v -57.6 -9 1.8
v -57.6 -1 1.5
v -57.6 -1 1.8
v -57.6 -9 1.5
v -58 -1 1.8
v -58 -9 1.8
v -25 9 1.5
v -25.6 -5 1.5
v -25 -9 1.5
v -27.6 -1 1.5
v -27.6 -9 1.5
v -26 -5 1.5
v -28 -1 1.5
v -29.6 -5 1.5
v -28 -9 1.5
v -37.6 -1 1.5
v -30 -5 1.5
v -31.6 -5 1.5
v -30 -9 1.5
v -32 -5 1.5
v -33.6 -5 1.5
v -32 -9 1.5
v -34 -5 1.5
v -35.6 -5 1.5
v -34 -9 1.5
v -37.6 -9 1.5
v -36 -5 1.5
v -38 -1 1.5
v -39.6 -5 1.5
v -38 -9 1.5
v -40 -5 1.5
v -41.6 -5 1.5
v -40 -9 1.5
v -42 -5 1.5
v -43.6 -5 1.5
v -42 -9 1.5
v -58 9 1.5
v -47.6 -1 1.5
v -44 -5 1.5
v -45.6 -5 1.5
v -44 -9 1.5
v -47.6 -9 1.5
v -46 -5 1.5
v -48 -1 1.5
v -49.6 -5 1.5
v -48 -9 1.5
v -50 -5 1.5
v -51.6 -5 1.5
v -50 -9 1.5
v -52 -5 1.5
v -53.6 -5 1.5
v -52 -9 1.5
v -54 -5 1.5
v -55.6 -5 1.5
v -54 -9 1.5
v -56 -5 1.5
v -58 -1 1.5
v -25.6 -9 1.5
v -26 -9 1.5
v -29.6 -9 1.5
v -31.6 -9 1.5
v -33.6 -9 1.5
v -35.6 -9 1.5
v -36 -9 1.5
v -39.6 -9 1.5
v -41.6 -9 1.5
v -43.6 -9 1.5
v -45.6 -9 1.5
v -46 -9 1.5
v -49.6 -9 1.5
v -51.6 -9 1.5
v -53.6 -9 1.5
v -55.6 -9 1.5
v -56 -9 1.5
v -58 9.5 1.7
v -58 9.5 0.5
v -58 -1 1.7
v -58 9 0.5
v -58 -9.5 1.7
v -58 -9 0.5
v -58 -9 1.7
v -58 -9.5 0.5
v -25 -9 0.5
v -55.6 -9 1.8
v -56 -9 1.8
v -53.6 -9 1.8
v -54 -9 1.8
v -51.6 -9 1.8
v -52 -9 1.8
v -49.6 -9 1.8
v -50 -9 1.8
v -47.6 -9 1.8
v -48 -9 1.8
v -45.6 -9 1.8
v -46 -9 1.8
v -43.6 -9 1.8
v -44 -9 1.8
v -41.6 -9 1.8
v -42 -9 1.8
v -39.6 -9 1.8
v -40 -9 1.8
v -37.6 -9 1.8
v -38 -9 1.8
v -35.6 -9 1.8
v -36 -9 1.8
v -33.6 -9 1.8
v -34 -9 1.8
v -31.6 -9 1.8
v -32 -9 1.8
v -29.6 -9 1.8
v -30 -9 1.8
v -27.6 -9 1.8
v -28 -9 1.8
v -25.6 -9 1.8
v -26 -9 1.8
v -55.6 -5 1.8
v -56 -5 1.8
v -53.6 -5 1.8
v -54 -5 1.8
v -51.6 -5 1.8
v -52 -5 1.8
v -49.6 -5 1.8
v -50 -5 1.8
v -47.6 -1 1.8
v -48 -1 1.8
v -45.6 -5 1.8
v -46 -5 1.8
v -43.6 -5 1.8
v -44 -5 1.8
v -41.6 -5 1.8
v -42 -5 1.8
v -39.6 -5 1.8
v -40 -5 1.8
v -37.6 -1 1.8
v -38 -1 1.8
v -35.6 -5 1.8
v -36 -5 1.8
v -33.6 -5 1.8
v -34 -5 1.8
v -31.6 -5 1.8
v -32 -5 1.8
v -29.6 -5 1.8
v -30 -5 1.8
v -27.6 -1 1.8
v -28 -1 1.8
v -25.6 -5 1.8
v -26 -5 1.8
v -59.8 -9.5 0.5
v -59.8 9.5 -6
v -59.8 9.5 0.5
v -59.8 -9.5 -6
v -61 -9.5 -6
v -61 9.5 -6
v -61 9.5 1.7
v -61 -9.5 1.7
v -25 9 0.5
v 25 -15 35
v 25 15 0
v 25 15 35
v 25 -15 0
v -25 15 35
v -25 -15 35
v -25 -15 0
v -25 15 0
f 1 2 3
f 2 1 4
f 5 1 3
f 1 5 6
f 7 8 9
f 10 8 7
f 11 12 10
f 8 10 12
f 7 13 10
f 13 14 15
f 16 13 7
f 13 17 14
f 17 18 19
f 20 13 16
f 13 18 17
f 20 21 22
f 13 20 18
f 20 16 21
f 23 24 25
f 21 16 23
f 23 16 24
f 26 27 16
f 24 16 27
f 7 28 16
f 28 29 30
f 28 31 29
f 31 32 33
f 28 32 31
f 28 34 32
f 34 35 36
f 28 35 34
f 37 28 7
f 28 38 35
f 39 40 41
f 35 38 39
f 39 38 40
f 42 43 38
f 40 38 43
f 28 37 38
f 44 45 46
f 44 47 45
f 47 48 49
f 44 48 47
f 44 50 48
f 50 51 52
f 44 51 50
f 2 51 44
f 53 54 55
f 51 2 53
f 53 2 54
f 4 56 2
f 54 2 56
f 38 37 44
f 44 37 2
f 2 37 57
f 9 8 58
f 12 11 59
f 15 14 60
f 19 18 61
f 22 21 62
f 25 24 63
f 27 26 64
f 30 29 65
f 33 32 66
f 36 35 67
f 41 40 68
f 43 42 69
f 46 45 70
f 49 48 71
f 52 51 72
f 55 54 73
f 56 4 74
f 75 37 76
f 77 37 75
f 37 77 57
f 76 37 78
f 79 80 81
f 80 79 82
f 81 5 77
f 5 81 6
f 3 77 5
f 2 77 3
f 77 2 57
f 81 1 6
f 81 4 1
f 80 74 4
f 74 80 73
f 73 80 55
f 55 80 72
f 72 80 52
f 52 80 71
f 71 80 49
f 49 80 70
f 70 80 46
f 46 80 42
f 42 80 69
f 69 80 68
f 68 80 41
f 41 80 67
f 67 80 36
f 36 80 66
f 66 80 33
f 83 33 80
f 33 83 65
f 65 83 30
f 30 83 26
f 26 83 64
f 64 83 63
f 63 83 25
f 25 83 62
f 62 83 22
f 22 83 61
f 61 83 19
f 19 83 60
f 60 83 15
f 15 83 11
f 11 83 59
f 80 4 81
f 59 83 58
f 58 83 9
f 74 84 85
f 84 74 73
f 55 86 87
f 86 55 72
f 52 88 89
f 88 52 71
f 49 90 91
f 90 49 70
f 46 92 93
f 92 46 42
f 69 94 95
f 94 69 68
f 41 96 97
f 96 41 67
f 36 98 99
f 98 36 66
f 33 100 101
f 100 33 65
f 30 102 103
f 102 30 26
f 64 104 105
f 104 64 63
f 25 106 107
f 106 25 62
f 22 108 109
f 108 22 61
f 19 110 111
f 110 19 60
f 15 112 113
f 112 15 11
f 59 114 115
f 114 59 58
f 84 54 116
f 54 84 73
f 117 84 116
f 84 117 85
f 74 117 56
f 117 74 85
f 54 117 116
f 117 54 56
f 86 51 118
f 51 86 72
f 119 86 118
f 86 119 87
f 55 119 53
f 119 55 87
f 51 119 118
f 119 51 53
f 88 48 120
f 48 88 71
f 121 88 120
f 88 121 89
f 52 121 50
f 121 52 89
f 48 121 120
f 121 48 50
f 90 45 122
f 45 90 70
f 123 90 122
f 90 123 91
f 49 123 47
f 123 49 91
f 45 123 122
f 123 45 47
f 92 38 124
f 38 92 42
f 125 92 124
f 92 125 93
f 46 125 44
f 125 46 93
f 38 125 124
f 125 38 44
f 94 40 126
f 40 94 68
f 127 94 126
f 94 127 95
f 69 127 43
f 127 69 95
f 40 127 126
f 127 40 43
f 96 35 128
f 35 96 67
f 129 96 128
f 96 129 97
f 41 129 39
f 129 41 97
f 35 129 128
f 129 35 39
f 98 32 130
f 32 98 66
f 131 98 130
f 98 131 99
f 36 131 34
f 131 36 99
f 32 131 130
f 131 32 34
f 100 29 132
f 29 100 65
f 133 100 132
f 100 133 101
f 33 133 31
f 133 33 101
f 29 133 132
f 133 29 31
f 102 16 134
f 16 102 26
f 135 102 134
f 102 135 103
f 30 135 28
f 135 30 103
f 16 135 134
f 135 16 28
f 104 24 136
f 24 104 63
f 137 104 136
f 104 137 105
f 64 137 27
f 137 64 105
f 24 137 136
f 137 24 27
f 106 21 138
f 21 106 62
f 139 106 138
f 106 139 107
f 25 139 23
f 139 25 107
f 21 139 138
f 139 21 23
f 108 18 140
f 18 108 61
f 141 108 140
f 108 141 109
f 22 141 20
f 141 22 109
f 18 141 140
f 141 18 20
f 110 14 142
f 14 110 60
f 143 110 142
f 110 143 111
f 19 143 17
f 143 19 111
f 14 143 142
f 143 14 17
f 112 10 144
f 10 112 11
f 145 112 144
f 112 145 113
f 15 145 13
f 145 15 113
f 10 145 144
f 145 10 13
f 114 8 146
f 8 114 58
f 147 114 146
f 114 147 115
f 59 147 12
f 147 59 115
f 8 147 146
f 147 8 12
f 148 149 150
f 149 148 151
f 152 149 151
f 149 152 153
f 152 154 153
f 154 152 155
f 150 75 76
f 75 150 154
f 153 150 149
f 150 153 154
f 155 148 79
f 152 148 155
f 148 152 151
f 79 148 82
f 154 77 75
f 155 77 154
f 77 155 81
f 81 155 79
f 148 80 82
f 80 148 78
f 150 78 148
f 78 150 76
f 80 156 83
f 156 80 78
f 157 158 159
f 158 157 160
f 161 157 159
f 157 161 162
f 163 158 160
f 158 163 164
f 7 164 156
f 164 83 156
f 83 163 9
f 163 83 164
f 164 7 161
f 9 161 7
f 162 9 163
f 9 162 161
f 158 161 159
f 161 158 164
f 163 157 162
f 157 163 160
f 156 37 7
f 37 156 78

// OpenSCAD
// file: _common.scad
// mechanism 共用設定 + 齒輪 module
$fn = 60;

// 簡化齒輪：N 個齒、節圓半徑 r、齒高 h、齒寬 w
module simple_gear(N = 16, r = 20, h = 4, thick = 6) {
  union() {
    // 主圓盤
    cylinder(h = thick, r = r, center = true);
    // 齒（梯形）
    for (i = [0:N-1]) {
      rotate([0, 0, i * 360 / N])
        translate([r, 0, 0])
          linear_extrude(height = thick, center = true)
            polygon([[0, -2.4], [h, -1.4], [h, 1.4], [0, 2.4]]);
    }
    // 中心凸軸
    cylinder(h = thick * 1.4, r = r * 0.18, center = true);
  }
}
// main file
// 量測 Measuring — 捲尺（黃色塑膠殼 + 鋼尺帶）
include <_common.scad>

// 主殼體（黃色 box）
color([0.95, 0.75, 0.10])
  translate([-25, -15, 0]) cube([50, 30, 35], $fn = 32);

// 2026-10 修正：尺帶原本從殼體半高伸出、鉤頭上下對稱；實物是從殼底前方伸出、平貼桌面，
// 末端鉤頭向下彎成 L 形（勾住工件邊緣），尺帶伸出長一點才看得出是捲尺
// 鋼尺帶（黃色、從殼底伸出）
color([0.98, 0.85, 0.20])
  translate([-60, -9, 0.5]) cube([36, 18, 1]);
// 尺帶刻度線（小黑線示意）
color([0.18, 0.18, 0.18])
  for (i = [0:16]) translate([-58 + i * 2, -9, 1.5]) cube([0.4, (i % 5 == 0) ? 8 : 4, 0.3]);
// 鉤頭（尺帶末端向下彎的金屬鉤，L 形）
color([0.6, 0.6, 0.6]) {
  translate([-61, -9.5, -6]) cube([1.2, 19, 7.5]);
  translate([-61, -9.5, 0.5]) cube([3, 19, 1.2]);
}
